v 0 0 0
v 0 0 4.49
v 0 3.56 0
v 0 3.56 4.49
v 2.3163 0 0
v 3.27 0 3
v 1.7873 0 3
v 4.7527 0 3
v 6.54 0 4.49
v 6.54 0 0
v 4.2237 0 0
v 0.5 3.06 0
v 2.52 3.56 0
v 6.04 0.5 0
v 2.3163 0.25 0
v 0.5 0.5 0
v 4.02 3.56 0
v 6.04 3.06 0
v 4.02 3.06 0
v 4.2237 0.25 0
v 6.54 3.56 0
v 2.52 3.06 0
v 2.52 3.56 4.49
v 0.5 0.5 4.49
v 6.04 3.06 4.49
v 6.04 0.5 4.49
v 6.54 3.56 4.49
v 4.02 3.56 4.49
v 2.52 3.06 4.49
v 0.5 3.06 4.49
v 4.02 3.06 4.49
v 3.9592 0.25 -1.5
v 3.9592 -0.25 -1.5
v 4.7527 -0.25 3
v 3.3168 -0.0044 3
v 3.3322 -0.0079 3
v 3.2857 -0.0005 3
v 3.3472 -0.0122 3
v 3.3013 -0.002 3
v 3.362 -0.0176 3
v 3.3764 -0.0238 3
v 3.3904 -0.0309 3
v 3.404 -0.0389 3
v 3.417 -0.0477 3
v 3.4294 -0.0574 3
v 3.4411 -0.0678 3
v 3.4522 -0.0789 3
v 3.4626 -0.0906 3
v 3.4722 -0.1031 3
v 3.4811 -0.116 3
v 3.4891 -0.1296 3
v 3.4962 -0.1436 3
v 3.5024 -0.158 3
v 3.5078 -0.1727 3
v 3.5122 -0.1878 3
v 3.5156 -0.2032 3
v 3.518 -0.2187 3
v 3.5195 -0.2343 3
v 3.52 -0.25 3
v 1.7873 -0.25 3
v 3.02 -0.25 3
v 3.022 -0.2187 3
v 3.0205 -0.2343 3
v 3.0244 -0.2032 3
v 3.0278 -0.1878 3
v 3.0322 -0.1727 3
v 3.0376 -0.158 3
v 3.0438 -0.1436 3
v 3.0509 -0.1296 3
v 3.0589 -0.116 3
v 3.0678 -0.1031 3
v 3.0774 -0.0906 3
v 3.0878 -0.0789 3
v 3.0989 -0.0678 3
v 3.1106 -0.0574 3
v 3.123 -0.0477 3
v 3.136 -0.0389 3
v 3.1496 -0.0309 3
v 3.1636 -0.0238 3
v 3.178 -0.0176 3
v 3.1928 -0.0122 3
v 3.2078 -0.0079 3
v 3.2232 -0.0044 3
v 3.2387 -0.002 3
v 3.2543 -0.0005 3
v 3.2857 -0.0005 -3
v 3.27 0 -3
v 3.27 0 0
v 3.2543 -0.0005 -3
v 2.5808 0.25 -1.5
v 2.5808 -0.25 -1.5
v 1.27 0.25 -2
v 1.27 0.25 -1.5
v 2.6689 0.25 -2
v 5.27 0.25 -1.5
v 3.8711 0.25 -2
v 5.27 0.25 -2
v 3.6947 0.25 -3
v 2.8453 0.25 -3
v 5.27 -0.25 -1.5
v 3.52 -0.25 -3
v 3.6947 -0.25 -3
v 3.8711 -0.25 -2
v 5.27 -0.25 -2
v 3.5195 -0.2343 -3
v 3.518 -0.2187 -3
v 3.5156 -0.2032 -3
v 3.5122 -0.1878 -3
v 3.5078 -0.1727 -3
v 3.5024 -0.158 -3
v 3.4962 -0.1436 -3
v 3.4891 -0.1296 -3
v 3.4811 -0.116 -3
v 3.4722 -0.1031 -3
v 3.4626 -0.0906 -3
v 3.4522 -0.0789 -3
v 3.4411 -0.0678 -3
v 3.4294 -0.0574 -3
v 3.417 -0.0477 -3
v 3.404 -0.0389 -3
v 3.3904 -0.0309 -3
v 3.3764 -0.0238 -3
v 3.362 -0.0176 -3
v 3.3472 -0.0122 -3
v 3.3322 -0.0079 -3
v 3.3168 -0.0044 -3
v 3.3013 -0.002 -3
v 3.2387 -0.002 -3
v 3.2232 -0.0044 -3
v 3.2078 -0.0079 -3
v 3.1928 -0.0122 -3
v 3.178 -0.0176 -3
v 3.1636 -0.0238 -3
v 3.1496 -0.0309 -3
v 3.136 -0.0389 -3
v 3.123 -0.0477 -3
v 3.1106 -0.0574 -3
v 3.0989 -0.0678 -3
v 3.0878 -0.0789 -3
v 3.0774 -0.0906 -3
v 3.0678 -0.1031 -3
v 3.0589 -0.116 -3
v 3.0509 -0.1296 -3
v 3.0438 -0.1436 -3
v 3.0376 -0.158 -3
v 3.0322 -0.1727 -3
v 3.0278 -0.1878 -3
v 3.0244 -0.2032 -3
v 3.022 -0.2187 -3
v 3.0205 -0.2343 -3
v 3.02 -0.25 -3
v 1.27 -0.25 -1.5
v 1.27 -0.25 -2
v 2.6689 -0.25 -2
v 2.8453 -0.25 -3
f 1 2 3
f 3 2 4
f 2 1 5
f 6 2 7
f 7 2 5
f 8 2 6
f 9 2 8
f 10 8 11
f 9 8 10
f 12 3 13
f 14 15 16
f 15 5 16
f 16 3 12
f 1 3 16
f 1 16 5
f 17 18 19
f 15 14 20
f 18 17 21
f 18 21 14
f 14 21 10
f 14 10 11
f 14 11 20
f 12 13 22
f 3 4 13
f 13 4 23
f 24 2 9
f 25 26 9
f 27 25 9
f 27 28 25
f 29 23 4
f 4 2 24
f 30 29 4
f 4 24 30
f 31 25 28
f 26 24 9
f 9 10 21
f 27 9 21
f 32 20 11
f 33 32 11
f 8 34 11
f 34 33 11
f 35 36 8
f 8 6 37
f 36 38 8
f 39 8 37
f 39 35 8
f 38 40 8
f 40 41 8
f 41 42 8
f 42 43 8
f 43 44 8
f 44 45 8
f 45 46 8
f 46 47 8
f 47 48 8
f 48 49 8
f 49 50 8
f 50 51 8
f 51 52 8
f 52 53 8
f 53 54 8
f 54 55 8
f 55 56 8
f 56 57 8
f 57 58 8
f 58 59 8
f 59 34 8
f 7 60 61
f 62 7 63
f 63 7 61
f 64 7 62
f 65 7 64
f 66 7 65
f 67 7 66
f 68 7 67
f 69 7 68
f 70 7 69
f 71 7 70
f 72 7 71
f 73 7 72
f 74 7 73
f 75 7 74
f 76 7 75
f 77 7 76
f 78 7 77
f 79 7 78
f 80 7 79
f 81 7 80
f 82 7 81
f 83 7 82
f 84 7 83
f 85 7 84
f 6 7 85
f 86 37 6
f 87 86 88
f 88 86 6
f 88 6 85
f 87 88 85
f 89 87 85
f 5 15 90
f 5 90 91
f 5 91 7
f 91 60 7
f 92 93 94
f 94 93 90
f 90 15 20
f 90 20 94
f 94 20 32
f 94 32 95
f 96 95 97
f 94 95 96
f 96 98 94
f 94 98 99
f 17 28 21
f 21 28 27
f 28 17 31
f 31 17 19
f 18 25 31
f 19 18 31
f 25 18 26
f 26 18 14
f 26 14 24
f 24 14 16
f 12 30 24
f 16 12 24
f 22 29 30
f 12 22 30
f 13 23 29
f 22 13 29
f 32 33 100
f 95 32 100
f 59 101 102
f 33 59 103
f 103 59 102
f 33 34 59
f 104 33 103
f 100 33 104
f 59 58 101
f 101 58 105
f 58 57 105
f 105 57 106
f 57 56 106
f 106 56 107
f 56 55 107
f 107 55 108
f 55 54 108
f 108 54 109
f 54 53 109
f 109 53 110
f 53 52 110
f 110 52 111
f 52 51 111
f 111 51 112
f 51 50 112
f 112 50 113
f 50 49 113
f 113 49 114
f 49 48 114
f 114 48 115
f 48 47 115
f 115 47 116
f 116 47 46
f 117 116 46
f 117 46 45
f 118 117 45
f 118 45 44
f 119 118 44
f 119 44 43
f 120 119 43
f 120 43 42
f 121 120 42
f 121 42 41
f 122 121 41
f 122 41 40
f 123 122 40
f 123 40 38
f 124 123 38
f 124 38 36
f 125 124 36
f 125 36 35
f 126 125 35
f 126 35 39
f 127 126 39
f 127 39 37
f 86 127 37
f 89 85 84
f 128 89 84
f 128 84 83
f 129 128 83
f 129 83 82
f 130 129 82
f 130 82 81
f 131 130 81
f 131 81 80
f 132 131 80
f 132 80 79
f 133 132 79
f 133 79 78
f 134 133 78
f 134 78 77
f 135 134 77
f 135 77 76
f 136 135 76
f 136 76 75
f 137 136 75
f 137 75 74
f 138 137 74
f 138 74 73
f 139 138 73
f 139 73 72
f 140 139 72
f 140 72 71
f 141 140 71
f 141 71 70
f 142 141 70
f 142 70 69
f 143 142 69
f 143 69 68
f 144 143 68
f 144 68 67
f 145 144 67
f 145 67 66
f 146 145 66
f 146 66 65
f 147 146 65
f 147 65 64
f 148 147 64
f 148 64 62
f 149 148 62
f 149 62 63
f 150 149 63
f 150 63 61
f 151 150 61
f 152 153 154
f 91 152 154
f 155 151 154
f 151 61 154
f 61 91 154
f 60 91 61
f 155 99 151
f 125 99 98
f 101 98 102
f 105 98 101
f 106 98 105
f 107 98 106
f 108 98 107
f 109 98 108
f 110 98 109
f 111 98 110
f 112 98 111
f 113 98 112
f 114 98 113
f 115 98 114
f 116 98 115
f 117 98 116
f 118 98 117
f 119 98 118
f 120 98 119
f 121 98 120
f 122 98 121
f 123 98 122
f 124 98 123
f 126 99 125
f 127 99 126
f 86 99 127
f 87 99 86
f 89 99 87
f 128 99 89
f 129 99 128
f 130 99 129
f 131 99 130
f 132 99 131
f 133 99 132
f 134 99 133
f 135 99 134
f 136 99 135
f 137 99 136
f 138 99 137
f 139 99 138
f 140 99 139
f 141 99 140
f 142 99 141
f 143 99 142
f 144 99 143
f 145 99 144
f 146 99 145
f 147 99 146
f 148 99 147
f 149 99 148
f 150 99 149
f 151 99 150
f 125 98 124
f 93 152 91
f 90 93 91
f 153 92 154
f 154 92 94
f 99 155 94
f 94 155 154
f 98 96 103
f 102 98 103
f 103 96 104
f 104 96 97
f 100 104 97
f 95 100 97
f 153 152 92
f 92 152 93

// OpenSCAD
// Created  by Kyler Brown, 2015

// units: mm
// connector: omnetics A8366-001   NPD-14-WD-18.0-GS

// *** makerbot replicator 2 specs ***
/*
Print Technology
Fused Deposition Modeling

Layer Resolution
100 microns [0.0039 in]

Positioning Precision
XY: 11 microns [0.0004 in]
Z: 2.5 microns [0.0001 in]

Filament Diameter
1.75 mm [0.069 in]

Nozzle Diameter
0.4 mm [0.015 in] 
*/



delta = 0.01; // prevent zero length walls.

connector_x = 5.54;
connector_z = 4.49;
connector_y = 2.56;
connector_wall_dia = .5;
connector_cut_x = 1.5;

block_x = 4;
block_y = .5;
block_z = 6;

cut_x = 2;
cut_z = 1;
cut_angle  = 10;
guide_diameter = .5;

module connector_holder (){
  difference(){
    cube([connector_x + 2*connector_wall_dia,
	  connector_y + 2*connector_wall_dia,
	  connector_z,
	  ]);
    translate([connector_wall_dia, connector_wall_dia, -delta]){
      cube([connector_x, connector_y, connector_z+2*delta]);
    }
    //strain relief cut
    translate([connector_wall_dia + connector_x /2 - connector_cut_x/2,
	        connector_wall_dia + connector_y -delta, -delta]){
      cube([connector_cut_x, 2*connector_wall_dia + 2*delta + connector_y, connector_z+2*delta]);
    }
  }
}



module block(){
  difference(){
    cube([block_x, block_y, block_z]);
    translate([6,0,3]){
      rotate([0,cut_angle,0]){
	cube([6,15,10], center=true);
      }
    }
    translate([-2,0,3]){
      rotate([0,-cut_angle,0]){
	cube([6,15,10], center=true);
      }
    }
  }
}

leg_length = block_x;
leg_dia = .5;
module block_with_legs(){
  union(){
    block();
    translate([0,0,1]){
    cube([leg_length, leg_dia, leg_dia]);
    }
  }

}

module guide_cut(){
  union(){
    rotate([0,0,0]){
      cylinder(h=block_z+2*delta, r=guide_diameter/2, center=false, $fn=100);

      translate([-guide_diameter/2,-block_z, 0]){
	cube([guide_diameter, block_z, block_z+delta], center=false);
      }
    }
  }
}

module block_with_guide(){
  difference(){
    block_with_legs();
    translate([block_x/2, 0, -delta]){
      guide_cut();
    }

  }

}
//connector_holder();

module full_array(){

  union(){
    connector_holder();
    translate([(connector_wall_dia + connector_x/2 - block_x/2),
	       -block_y/2,
	       -block_z/2]){
      block_with_guide();
    }
  }
}

full_array();
